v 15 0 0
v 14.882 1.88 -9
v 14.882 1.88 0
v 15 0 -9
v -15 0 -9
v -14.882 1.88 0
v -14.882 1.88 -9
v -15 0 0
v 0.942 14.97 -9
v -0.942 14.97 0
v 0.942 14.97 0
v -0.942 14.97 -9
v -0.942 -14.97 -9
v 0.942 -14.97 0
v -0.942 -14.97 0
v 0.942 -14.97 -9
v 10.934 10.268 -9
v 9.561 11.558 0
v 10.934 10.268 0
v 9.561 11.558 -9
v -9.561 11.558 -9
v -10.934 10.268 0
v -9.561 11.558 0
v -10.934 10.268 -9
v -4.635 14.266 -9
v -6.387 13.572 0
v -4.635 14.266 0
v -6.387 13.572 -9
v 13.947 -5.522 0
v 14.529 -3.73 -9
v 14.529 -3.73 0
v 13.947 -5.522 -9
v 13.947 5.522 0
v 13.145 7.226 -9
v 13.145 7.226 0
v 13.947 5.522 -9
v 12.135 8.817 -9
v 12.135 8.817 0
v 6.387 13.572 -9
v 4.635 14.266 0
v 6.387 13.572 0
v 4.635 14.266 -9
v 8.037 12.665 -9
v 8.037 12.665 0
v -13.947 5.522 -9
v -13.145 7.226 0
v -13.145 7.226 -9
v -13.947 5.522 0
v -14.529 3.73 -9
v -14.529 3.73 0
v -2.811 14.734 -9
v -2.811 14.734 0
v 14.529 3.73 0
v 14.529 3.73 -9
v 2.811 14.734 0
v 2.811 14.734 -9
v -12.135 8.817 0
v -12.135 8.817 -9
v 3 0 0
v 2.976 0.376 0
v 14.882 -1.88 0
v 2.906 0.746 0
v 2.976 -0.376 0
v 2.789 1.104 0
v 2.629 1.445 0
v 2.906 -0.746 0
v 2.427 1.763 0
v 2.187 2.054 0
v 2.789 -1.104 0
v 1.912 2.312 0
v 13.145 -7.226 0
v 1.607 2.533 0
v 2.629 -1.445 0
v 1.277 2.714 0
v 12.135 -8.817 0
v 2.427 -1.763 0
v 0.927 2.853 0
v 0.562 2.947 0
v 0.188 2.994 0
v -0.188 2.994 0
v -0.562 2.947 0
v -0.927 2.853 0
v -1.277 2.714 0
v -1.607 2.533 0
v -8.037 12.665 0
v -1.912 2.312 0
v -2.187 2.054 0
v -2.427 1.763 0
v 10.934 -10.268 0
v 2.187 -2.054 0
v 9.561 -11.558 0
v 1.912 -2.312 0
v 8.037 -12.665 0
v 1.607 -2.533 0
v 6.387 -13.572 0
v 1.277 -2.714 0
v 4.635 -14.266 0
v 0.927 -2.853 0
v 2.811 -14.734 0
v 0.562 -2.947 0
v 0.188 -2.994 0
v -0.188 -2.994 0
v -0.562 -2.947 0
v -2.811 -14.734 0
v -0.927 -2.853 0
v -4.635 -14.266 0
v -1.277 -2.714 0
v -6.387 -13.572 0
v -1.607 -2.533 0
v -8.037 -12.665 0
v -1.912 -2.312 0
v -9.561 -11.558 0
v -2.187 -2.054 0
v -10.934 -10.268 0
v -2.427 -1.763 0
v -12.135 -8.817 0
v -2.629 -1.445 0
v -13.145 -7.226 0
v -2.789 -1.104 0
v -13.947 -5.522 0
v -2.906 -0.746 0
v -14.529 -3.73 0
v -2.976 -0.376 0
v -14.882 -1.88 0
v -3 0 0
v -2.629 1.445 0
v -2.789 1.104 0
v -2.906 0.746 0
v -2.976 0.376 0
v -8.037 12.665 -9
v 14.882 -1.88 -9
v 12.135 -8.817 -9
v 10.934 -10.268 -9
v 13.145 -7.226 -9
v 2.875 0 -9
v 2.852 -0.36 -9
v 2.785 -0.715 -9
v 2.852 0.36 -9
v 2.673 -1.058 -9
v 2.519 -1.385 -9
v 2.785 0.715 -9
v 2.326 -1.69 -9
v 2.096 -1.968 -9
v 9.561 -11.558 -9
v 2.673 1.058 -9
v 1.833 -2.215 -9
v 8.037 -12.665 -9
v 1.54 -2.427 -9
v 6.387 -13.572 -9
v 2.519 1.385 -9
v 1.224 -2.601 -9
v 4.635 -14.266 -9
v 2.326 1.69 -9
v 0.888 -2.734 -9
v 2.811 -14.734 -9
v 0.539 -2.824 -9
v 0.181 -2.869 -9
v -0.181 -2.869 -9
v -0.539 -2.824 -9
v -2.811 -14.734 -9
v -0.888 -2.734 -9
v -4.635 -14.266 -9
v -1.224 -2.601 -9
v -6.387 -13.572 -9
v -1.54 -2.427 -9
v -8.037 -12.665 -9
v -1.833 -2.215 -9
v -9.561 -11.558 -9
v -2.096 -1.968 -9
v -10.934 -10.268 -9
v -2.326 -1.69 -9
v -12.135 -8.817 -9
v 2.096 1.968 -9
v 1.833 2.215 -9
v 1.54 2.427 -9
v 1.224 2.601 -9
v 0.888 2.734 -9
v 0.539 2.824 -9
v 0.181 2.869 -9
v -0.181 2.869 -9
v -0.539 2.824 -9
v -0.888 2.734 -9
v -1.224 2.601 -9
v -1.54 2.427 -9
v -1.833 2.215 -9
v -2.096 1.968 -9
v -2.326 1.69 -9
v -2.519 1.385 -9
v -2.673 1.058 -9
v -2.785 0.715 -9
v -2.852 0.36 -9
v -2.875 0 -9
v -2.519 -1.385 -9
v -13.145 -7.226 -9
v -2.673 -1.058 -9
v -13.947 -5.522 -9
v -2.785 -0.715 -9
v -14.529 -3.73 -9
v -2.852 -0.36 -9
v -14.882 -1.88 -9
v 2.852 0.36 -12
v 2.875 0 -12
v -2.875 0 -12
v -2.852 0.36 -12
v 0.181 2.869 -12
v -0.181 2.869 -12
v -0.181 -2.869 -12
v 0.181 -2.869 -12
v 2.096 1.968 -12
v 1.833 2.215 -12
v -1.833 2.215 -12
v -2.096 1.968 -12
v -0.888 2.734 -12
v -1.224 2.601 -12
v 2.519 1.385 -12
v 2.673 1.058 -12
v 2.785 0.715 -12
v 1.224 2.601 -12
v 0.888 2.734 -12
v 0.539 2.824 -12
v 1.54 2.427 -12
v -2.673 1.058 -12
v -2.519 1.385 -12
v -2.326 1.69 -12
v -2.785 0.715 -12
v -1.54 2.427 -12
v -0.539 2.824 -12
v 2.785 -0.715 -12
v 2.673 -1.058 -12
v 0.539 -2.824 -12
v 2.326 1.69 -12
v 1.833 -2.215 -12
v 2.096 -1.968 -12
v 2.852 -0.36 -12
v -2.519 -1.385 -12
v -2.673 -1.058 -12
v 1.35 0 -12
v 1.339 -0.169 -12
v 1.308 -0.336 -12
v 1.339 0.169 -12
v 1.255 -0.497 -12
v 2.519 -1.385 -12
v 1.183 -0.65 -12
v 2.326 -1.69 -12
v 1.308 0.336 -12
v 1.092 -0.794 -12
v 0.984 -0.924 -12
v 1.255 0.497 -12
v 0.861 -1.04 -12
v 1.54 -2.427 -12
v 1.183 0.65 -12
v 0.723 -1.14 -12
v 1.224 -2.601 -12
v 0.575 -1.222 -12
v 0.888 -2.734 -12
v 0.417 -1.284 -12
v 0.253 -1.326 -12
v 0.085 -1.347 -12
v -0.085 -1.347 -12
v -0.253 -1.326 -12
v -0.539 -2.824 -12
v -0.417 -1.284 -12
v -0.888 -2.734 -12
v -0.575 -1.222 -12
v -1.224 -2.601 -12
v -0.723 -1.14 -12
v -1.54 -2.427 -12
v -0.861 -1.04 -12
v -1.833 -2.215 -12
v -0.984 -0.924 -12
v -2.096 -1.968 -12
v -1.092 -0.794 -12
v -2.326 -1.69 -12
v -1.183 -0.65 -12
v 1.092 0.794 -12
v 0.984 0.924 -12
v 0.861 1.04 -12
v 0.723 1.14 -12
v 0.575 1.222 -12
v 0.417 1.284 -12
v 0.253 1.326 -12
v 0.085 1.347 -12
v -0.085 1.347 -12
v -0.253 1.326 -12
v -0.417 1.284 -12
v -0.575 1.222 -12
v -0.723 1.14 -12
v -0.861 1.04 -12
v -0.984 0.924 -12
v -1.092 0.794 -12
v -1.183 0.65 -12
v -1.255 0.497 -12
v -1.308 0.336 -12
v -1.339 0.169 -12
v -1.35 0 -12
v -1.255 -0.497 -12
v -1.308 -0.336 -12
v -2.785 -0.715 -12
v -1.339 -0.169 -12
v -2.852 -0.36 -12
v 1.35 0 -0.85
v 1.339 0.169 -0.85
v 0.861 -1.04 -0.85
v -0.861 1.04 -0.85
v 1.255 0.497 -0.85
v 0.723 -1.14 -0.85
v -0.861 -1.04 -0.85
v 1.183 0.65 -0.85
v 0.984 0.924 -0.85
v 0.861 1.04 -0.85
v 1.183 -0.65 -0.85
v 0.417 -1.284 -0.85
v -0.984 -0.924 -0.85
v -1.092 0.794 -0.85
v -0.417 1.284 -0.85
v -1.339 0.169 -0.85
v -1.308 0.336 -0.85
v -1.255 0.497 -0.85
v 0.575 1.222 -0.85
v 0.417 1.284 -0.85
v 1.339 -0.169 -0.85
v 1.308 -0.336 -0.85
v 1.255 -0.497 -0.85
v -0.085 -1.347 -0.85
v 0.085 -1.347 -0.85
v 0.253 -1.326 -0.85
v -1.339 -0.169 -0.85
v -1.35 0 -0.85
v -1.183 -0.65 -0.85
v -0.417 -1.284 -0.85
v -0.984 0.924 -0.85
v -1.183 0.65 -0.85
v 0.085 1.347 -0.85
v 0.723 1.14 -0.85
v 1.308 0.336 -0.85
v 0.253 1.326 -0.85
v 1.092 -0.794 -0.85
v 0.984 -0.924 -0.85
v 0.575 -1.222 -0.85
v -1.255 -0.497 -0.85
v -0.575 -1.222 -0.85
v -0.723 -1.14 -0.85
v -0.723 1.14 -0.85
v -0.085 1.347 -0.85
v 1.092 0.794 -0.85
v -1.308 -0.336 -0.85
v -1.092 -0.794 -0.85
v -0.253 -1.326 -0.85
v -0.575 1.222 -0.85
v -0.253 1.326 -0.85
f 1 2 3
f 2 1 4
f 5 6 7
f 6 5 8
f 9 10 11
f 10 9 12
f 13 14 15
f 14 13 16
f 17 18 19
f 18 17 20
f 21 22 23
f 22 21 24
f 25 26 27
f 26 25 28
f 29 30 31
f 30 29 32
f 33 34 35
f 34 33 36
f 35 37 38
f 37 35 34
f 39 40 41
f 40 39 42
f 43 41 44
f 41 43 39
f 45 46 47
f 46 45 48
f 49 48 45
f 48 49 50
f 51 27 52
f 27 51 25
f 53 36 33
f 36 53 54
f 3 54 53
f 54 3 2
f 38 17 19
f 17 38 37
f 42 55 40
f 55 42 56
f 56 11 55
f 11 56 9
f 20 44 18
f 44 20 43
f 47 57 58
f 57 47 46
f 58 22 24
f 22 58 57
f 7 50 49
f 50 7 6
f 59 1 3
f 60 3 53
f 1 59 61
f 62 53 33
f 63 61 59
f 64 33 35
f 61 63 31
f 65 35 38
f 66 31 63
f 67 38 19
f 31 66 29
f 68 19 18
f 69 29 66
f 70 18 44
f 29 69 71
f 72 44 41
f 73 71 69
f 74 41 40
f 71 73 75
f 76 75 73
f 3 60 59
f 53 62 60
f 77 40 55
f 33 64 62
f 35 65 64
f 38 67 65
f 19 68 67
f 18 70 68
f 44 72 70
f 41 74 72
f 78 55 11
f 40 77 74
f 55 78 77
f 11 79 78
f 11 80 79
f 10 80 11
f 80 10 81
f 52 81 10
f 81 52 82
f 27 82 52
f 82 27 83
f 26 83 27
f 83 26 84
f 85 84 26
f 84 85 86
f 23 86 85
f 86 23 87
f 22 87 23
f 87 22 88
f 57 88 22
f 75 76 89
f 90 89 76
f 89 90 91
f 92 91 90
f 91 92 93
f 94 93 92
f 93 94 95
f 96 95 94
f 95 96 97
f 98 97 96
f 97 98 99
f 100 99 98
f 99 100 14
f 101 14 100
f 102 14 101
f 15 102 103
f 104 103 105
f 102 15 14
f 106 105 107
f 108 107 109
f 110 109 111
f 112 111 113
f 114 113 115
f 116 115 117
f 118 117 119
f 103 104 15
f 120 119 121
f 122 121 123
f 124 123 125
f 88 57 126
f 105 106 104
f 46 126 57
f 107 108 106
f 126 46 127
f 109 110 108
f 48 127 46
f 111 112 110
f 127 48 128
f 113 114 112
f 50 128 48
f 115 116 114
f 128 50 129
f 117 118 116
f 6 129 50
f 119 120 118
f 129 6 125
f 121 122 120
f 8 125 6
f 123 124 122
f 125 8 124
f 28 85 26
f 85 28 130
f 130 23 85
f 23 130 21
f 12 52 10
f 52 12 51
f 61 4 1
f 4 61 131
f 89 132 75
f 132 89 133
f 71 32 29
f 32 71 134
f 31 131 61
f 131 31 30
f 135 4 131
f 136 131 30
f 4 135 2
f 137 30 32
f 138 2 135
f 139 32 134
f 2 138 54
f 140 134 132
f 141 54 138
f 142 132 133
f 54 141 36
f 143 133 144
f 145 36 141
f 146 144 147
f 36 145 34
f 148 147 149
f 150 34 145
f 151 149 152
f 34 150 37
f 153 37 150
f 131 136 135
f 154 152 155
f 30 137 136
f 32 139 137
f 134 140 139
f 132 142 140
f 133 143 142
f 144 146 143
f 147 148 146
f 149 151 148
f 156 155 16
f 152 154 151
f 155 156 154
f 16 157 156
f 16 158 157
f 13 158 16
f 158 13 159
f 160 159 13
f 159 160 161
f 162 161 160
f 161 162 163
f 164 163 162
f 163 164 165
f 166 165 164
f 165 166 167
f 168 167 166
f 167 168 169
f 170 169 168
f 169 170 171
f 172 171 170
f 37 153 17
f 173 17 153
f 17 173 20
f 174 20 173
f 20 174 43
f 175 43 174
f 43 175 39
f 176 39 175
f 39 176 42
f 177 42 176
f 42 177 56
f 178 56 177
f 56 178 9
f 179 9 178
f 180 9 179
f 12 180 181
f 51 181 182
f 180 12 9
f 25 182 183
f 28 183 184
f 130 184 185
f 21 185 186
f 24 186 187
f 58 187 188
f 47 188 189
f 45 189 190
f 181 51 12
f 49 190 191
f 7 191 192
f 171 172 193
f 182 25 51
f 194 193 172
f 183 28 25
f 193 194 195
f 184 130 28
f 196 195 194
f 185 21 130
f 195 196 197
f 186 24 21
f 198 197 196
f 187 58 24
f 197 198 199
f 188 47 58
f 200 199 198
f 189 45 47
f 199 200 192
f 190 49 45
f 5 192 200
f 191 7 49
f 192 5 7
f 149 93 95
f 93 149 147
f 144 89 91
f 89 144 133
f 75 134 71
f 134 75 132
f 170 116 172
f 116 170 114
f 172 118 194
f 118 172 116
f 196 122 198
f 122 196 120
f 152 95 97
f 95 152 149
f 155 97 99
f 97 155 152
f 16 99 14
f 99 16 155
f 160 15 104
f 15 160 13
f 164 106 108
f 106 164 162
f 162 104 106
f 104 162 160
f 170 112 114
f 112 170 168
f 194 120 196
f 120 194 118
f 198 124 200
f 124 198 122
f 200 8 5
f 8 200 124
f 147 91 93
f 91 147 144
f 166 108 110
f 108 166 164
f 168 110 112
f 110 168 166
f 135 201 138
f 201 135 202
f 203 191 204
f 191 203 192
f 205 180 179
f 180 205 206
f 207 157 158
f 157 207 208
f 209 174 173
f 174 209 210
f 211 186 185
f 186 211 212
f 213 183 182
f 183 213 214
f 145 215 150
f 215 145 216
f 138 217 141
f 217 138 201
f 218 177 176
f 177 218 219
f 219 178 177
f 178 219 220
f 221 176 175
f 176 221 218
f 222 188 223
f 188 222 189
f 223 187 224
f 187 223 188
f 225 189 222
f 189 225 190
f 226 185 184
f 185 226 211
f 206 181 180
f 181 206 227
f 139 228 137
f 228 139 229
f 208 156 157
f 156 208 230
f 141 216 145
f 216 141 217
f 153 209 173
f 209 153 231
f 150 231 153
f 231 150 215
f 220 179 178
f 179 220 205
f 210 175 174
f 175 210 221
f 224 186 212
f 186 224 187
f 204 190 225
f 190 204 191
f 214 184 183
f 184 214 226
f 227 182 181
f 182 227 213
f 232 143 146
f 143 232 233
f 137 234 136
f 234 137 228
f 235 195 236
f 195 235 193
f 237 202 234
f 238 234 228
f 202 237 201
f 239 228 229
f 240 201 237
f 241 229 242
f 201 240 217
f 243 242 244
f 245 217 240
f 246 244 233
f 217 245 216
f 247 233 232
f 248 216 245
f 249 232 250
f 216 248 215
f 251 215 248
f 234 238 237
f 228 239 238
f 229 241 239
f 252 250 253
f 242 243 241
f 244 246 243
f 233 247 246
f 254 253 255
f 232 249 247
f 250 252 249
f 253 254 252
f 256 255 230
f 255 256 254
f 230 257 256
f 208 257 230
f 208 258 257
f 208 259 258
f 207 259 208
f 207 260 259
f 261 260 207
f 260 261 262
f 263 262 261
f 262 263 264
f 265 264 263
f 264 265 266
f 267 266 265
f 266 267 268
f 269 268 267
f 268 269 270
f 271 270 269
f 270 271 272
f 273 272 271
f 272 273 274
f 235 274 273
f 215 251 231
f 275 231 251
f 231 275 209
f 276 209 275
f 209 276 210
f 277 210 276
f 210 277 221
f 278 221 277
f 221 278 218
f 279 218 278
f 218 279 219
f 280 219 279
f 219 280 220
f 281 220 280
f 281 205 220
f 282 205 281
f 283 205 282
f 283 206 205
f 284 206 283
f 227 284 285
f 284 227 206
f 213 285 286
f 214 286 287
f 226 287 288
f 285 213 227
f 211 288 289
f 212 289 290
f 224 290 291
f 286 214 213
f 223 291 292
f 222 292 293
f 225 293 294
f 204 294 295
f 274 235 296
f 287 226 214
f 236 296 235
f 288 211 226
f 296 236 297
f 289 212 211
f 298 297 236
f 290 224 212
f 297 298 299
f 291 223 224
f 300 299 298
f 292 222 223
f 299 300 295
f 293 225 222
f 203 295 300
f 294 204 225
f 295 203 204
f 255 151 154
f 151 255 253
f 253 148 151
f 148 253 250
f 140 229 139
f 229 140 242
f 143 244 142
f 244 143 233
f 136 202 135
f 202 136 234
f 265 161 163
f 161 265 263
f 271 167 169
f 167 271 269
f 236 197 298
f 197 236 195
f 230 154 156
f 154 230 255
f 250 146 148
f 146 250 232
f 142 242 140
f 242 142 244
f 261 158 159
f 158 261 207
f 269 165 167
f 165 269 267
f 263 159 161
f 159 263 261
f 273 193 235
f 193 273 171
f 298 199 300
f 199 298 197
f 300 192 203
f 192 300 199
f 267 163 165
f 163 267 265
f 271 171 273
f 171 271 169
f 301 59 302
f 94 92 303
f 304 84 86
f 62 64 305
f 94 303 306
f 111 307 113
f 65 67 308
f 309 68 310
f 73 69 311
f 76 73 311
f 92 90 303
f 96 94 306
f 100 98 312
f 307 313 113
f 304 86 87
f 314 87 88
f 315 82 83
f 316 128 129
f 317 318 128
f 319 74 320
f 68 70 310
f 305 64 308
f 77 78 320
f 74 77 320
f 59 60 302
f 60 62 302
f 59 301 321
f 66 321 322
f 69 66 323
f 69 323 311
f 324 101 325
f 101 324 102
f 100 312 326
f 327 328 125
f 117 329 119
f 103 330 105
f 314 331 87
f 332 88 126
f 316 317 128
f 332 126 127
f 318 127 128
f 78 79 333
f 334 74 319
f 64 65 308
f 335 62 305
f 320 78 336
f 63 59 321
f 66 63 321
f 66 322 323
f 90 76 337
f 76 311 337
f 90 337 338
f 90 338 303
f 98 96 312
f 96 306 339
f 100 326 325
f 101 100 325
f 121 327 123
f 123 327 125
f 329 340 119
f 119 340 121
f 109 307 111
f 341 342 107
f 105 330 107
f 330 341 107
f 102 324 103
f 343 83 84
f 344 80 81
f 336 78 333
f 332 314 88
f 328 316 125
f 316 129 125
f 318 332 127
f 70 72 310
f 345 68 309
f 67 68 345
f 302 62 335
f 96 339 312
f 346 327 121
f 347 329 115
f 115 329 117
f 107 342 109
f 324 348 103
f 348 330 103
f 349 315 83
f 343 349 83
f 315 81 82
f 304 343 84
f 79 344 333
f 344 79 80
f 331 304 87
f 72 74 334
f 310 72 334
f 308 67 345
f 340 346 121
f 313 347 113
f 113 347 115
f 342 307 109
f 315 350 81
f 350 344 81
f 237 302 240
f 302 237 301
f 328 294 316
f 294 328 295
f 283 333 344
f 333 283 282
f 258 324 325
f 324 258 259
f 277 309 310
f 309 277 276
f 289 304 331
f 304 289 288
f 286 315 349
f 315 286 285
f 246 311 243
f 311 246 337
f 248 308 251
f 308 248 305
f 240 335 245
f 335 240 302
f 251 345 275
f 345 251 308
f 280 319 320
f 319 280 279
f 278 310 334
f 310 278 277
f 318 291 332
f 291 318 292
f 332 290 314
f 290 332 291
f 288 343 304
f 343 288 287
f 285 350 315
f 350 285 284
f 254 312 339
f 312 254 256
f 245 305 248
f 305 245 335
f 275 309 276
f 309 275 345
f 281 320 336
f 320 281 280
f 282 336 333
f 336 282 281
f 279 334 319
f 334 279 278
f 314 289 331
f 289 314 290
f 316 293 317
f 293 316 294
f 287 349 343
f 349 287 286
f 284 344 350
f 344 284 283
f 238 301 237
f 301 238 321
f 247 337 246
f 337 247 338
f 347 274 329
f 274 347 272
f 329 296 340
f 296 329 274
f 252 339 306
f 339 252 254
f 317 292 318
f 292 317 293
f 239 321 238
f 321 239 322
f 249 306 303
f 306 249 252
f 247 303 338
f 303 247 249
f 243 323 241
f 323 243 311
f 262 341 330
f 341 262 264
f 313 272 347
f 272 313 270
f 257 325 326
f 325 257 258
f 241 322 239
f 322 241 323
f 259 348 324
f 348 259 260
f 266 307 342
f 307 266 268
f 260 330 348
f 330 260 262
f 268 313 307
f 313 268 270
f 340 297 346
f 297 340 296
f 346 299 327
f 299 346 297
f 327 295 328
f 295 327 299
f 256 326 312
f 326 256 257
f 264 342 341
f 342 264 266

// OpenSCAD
$fn = 50;

difference() {
	union() {
		translate(v = [0, 0, -9.0]) {
			cylinder(h = 9, r = 15.0);
		}
		#translate(v = [0, 0, -12.0]) {
			cylinder(h = 12, r = 2.875);
		}
	}
	union() {
		translate(v = [0, 0, 0]) {
			rotate(a = [0, 0, 0]) {
				difference() {
					union() {
						translate(v = [0, 0, -12.0]) {
							cylinder(h = 12, r = 1.0);
						}
						translate(v = [0, 0, -0.85]) {
							cylinder(h = 0.85, r1 = 1.35, r2 = 3.0);
						}
						translate(v = [0, 0, -12.0]) {
							cylinder(h = 12, r = 1.35);
						}
						translate(v = [0, 0, -12.0]) {
							cylinder(h = 12, r = 1.0);
						}
					}
					union();
				}
			}
		}
	}
}
